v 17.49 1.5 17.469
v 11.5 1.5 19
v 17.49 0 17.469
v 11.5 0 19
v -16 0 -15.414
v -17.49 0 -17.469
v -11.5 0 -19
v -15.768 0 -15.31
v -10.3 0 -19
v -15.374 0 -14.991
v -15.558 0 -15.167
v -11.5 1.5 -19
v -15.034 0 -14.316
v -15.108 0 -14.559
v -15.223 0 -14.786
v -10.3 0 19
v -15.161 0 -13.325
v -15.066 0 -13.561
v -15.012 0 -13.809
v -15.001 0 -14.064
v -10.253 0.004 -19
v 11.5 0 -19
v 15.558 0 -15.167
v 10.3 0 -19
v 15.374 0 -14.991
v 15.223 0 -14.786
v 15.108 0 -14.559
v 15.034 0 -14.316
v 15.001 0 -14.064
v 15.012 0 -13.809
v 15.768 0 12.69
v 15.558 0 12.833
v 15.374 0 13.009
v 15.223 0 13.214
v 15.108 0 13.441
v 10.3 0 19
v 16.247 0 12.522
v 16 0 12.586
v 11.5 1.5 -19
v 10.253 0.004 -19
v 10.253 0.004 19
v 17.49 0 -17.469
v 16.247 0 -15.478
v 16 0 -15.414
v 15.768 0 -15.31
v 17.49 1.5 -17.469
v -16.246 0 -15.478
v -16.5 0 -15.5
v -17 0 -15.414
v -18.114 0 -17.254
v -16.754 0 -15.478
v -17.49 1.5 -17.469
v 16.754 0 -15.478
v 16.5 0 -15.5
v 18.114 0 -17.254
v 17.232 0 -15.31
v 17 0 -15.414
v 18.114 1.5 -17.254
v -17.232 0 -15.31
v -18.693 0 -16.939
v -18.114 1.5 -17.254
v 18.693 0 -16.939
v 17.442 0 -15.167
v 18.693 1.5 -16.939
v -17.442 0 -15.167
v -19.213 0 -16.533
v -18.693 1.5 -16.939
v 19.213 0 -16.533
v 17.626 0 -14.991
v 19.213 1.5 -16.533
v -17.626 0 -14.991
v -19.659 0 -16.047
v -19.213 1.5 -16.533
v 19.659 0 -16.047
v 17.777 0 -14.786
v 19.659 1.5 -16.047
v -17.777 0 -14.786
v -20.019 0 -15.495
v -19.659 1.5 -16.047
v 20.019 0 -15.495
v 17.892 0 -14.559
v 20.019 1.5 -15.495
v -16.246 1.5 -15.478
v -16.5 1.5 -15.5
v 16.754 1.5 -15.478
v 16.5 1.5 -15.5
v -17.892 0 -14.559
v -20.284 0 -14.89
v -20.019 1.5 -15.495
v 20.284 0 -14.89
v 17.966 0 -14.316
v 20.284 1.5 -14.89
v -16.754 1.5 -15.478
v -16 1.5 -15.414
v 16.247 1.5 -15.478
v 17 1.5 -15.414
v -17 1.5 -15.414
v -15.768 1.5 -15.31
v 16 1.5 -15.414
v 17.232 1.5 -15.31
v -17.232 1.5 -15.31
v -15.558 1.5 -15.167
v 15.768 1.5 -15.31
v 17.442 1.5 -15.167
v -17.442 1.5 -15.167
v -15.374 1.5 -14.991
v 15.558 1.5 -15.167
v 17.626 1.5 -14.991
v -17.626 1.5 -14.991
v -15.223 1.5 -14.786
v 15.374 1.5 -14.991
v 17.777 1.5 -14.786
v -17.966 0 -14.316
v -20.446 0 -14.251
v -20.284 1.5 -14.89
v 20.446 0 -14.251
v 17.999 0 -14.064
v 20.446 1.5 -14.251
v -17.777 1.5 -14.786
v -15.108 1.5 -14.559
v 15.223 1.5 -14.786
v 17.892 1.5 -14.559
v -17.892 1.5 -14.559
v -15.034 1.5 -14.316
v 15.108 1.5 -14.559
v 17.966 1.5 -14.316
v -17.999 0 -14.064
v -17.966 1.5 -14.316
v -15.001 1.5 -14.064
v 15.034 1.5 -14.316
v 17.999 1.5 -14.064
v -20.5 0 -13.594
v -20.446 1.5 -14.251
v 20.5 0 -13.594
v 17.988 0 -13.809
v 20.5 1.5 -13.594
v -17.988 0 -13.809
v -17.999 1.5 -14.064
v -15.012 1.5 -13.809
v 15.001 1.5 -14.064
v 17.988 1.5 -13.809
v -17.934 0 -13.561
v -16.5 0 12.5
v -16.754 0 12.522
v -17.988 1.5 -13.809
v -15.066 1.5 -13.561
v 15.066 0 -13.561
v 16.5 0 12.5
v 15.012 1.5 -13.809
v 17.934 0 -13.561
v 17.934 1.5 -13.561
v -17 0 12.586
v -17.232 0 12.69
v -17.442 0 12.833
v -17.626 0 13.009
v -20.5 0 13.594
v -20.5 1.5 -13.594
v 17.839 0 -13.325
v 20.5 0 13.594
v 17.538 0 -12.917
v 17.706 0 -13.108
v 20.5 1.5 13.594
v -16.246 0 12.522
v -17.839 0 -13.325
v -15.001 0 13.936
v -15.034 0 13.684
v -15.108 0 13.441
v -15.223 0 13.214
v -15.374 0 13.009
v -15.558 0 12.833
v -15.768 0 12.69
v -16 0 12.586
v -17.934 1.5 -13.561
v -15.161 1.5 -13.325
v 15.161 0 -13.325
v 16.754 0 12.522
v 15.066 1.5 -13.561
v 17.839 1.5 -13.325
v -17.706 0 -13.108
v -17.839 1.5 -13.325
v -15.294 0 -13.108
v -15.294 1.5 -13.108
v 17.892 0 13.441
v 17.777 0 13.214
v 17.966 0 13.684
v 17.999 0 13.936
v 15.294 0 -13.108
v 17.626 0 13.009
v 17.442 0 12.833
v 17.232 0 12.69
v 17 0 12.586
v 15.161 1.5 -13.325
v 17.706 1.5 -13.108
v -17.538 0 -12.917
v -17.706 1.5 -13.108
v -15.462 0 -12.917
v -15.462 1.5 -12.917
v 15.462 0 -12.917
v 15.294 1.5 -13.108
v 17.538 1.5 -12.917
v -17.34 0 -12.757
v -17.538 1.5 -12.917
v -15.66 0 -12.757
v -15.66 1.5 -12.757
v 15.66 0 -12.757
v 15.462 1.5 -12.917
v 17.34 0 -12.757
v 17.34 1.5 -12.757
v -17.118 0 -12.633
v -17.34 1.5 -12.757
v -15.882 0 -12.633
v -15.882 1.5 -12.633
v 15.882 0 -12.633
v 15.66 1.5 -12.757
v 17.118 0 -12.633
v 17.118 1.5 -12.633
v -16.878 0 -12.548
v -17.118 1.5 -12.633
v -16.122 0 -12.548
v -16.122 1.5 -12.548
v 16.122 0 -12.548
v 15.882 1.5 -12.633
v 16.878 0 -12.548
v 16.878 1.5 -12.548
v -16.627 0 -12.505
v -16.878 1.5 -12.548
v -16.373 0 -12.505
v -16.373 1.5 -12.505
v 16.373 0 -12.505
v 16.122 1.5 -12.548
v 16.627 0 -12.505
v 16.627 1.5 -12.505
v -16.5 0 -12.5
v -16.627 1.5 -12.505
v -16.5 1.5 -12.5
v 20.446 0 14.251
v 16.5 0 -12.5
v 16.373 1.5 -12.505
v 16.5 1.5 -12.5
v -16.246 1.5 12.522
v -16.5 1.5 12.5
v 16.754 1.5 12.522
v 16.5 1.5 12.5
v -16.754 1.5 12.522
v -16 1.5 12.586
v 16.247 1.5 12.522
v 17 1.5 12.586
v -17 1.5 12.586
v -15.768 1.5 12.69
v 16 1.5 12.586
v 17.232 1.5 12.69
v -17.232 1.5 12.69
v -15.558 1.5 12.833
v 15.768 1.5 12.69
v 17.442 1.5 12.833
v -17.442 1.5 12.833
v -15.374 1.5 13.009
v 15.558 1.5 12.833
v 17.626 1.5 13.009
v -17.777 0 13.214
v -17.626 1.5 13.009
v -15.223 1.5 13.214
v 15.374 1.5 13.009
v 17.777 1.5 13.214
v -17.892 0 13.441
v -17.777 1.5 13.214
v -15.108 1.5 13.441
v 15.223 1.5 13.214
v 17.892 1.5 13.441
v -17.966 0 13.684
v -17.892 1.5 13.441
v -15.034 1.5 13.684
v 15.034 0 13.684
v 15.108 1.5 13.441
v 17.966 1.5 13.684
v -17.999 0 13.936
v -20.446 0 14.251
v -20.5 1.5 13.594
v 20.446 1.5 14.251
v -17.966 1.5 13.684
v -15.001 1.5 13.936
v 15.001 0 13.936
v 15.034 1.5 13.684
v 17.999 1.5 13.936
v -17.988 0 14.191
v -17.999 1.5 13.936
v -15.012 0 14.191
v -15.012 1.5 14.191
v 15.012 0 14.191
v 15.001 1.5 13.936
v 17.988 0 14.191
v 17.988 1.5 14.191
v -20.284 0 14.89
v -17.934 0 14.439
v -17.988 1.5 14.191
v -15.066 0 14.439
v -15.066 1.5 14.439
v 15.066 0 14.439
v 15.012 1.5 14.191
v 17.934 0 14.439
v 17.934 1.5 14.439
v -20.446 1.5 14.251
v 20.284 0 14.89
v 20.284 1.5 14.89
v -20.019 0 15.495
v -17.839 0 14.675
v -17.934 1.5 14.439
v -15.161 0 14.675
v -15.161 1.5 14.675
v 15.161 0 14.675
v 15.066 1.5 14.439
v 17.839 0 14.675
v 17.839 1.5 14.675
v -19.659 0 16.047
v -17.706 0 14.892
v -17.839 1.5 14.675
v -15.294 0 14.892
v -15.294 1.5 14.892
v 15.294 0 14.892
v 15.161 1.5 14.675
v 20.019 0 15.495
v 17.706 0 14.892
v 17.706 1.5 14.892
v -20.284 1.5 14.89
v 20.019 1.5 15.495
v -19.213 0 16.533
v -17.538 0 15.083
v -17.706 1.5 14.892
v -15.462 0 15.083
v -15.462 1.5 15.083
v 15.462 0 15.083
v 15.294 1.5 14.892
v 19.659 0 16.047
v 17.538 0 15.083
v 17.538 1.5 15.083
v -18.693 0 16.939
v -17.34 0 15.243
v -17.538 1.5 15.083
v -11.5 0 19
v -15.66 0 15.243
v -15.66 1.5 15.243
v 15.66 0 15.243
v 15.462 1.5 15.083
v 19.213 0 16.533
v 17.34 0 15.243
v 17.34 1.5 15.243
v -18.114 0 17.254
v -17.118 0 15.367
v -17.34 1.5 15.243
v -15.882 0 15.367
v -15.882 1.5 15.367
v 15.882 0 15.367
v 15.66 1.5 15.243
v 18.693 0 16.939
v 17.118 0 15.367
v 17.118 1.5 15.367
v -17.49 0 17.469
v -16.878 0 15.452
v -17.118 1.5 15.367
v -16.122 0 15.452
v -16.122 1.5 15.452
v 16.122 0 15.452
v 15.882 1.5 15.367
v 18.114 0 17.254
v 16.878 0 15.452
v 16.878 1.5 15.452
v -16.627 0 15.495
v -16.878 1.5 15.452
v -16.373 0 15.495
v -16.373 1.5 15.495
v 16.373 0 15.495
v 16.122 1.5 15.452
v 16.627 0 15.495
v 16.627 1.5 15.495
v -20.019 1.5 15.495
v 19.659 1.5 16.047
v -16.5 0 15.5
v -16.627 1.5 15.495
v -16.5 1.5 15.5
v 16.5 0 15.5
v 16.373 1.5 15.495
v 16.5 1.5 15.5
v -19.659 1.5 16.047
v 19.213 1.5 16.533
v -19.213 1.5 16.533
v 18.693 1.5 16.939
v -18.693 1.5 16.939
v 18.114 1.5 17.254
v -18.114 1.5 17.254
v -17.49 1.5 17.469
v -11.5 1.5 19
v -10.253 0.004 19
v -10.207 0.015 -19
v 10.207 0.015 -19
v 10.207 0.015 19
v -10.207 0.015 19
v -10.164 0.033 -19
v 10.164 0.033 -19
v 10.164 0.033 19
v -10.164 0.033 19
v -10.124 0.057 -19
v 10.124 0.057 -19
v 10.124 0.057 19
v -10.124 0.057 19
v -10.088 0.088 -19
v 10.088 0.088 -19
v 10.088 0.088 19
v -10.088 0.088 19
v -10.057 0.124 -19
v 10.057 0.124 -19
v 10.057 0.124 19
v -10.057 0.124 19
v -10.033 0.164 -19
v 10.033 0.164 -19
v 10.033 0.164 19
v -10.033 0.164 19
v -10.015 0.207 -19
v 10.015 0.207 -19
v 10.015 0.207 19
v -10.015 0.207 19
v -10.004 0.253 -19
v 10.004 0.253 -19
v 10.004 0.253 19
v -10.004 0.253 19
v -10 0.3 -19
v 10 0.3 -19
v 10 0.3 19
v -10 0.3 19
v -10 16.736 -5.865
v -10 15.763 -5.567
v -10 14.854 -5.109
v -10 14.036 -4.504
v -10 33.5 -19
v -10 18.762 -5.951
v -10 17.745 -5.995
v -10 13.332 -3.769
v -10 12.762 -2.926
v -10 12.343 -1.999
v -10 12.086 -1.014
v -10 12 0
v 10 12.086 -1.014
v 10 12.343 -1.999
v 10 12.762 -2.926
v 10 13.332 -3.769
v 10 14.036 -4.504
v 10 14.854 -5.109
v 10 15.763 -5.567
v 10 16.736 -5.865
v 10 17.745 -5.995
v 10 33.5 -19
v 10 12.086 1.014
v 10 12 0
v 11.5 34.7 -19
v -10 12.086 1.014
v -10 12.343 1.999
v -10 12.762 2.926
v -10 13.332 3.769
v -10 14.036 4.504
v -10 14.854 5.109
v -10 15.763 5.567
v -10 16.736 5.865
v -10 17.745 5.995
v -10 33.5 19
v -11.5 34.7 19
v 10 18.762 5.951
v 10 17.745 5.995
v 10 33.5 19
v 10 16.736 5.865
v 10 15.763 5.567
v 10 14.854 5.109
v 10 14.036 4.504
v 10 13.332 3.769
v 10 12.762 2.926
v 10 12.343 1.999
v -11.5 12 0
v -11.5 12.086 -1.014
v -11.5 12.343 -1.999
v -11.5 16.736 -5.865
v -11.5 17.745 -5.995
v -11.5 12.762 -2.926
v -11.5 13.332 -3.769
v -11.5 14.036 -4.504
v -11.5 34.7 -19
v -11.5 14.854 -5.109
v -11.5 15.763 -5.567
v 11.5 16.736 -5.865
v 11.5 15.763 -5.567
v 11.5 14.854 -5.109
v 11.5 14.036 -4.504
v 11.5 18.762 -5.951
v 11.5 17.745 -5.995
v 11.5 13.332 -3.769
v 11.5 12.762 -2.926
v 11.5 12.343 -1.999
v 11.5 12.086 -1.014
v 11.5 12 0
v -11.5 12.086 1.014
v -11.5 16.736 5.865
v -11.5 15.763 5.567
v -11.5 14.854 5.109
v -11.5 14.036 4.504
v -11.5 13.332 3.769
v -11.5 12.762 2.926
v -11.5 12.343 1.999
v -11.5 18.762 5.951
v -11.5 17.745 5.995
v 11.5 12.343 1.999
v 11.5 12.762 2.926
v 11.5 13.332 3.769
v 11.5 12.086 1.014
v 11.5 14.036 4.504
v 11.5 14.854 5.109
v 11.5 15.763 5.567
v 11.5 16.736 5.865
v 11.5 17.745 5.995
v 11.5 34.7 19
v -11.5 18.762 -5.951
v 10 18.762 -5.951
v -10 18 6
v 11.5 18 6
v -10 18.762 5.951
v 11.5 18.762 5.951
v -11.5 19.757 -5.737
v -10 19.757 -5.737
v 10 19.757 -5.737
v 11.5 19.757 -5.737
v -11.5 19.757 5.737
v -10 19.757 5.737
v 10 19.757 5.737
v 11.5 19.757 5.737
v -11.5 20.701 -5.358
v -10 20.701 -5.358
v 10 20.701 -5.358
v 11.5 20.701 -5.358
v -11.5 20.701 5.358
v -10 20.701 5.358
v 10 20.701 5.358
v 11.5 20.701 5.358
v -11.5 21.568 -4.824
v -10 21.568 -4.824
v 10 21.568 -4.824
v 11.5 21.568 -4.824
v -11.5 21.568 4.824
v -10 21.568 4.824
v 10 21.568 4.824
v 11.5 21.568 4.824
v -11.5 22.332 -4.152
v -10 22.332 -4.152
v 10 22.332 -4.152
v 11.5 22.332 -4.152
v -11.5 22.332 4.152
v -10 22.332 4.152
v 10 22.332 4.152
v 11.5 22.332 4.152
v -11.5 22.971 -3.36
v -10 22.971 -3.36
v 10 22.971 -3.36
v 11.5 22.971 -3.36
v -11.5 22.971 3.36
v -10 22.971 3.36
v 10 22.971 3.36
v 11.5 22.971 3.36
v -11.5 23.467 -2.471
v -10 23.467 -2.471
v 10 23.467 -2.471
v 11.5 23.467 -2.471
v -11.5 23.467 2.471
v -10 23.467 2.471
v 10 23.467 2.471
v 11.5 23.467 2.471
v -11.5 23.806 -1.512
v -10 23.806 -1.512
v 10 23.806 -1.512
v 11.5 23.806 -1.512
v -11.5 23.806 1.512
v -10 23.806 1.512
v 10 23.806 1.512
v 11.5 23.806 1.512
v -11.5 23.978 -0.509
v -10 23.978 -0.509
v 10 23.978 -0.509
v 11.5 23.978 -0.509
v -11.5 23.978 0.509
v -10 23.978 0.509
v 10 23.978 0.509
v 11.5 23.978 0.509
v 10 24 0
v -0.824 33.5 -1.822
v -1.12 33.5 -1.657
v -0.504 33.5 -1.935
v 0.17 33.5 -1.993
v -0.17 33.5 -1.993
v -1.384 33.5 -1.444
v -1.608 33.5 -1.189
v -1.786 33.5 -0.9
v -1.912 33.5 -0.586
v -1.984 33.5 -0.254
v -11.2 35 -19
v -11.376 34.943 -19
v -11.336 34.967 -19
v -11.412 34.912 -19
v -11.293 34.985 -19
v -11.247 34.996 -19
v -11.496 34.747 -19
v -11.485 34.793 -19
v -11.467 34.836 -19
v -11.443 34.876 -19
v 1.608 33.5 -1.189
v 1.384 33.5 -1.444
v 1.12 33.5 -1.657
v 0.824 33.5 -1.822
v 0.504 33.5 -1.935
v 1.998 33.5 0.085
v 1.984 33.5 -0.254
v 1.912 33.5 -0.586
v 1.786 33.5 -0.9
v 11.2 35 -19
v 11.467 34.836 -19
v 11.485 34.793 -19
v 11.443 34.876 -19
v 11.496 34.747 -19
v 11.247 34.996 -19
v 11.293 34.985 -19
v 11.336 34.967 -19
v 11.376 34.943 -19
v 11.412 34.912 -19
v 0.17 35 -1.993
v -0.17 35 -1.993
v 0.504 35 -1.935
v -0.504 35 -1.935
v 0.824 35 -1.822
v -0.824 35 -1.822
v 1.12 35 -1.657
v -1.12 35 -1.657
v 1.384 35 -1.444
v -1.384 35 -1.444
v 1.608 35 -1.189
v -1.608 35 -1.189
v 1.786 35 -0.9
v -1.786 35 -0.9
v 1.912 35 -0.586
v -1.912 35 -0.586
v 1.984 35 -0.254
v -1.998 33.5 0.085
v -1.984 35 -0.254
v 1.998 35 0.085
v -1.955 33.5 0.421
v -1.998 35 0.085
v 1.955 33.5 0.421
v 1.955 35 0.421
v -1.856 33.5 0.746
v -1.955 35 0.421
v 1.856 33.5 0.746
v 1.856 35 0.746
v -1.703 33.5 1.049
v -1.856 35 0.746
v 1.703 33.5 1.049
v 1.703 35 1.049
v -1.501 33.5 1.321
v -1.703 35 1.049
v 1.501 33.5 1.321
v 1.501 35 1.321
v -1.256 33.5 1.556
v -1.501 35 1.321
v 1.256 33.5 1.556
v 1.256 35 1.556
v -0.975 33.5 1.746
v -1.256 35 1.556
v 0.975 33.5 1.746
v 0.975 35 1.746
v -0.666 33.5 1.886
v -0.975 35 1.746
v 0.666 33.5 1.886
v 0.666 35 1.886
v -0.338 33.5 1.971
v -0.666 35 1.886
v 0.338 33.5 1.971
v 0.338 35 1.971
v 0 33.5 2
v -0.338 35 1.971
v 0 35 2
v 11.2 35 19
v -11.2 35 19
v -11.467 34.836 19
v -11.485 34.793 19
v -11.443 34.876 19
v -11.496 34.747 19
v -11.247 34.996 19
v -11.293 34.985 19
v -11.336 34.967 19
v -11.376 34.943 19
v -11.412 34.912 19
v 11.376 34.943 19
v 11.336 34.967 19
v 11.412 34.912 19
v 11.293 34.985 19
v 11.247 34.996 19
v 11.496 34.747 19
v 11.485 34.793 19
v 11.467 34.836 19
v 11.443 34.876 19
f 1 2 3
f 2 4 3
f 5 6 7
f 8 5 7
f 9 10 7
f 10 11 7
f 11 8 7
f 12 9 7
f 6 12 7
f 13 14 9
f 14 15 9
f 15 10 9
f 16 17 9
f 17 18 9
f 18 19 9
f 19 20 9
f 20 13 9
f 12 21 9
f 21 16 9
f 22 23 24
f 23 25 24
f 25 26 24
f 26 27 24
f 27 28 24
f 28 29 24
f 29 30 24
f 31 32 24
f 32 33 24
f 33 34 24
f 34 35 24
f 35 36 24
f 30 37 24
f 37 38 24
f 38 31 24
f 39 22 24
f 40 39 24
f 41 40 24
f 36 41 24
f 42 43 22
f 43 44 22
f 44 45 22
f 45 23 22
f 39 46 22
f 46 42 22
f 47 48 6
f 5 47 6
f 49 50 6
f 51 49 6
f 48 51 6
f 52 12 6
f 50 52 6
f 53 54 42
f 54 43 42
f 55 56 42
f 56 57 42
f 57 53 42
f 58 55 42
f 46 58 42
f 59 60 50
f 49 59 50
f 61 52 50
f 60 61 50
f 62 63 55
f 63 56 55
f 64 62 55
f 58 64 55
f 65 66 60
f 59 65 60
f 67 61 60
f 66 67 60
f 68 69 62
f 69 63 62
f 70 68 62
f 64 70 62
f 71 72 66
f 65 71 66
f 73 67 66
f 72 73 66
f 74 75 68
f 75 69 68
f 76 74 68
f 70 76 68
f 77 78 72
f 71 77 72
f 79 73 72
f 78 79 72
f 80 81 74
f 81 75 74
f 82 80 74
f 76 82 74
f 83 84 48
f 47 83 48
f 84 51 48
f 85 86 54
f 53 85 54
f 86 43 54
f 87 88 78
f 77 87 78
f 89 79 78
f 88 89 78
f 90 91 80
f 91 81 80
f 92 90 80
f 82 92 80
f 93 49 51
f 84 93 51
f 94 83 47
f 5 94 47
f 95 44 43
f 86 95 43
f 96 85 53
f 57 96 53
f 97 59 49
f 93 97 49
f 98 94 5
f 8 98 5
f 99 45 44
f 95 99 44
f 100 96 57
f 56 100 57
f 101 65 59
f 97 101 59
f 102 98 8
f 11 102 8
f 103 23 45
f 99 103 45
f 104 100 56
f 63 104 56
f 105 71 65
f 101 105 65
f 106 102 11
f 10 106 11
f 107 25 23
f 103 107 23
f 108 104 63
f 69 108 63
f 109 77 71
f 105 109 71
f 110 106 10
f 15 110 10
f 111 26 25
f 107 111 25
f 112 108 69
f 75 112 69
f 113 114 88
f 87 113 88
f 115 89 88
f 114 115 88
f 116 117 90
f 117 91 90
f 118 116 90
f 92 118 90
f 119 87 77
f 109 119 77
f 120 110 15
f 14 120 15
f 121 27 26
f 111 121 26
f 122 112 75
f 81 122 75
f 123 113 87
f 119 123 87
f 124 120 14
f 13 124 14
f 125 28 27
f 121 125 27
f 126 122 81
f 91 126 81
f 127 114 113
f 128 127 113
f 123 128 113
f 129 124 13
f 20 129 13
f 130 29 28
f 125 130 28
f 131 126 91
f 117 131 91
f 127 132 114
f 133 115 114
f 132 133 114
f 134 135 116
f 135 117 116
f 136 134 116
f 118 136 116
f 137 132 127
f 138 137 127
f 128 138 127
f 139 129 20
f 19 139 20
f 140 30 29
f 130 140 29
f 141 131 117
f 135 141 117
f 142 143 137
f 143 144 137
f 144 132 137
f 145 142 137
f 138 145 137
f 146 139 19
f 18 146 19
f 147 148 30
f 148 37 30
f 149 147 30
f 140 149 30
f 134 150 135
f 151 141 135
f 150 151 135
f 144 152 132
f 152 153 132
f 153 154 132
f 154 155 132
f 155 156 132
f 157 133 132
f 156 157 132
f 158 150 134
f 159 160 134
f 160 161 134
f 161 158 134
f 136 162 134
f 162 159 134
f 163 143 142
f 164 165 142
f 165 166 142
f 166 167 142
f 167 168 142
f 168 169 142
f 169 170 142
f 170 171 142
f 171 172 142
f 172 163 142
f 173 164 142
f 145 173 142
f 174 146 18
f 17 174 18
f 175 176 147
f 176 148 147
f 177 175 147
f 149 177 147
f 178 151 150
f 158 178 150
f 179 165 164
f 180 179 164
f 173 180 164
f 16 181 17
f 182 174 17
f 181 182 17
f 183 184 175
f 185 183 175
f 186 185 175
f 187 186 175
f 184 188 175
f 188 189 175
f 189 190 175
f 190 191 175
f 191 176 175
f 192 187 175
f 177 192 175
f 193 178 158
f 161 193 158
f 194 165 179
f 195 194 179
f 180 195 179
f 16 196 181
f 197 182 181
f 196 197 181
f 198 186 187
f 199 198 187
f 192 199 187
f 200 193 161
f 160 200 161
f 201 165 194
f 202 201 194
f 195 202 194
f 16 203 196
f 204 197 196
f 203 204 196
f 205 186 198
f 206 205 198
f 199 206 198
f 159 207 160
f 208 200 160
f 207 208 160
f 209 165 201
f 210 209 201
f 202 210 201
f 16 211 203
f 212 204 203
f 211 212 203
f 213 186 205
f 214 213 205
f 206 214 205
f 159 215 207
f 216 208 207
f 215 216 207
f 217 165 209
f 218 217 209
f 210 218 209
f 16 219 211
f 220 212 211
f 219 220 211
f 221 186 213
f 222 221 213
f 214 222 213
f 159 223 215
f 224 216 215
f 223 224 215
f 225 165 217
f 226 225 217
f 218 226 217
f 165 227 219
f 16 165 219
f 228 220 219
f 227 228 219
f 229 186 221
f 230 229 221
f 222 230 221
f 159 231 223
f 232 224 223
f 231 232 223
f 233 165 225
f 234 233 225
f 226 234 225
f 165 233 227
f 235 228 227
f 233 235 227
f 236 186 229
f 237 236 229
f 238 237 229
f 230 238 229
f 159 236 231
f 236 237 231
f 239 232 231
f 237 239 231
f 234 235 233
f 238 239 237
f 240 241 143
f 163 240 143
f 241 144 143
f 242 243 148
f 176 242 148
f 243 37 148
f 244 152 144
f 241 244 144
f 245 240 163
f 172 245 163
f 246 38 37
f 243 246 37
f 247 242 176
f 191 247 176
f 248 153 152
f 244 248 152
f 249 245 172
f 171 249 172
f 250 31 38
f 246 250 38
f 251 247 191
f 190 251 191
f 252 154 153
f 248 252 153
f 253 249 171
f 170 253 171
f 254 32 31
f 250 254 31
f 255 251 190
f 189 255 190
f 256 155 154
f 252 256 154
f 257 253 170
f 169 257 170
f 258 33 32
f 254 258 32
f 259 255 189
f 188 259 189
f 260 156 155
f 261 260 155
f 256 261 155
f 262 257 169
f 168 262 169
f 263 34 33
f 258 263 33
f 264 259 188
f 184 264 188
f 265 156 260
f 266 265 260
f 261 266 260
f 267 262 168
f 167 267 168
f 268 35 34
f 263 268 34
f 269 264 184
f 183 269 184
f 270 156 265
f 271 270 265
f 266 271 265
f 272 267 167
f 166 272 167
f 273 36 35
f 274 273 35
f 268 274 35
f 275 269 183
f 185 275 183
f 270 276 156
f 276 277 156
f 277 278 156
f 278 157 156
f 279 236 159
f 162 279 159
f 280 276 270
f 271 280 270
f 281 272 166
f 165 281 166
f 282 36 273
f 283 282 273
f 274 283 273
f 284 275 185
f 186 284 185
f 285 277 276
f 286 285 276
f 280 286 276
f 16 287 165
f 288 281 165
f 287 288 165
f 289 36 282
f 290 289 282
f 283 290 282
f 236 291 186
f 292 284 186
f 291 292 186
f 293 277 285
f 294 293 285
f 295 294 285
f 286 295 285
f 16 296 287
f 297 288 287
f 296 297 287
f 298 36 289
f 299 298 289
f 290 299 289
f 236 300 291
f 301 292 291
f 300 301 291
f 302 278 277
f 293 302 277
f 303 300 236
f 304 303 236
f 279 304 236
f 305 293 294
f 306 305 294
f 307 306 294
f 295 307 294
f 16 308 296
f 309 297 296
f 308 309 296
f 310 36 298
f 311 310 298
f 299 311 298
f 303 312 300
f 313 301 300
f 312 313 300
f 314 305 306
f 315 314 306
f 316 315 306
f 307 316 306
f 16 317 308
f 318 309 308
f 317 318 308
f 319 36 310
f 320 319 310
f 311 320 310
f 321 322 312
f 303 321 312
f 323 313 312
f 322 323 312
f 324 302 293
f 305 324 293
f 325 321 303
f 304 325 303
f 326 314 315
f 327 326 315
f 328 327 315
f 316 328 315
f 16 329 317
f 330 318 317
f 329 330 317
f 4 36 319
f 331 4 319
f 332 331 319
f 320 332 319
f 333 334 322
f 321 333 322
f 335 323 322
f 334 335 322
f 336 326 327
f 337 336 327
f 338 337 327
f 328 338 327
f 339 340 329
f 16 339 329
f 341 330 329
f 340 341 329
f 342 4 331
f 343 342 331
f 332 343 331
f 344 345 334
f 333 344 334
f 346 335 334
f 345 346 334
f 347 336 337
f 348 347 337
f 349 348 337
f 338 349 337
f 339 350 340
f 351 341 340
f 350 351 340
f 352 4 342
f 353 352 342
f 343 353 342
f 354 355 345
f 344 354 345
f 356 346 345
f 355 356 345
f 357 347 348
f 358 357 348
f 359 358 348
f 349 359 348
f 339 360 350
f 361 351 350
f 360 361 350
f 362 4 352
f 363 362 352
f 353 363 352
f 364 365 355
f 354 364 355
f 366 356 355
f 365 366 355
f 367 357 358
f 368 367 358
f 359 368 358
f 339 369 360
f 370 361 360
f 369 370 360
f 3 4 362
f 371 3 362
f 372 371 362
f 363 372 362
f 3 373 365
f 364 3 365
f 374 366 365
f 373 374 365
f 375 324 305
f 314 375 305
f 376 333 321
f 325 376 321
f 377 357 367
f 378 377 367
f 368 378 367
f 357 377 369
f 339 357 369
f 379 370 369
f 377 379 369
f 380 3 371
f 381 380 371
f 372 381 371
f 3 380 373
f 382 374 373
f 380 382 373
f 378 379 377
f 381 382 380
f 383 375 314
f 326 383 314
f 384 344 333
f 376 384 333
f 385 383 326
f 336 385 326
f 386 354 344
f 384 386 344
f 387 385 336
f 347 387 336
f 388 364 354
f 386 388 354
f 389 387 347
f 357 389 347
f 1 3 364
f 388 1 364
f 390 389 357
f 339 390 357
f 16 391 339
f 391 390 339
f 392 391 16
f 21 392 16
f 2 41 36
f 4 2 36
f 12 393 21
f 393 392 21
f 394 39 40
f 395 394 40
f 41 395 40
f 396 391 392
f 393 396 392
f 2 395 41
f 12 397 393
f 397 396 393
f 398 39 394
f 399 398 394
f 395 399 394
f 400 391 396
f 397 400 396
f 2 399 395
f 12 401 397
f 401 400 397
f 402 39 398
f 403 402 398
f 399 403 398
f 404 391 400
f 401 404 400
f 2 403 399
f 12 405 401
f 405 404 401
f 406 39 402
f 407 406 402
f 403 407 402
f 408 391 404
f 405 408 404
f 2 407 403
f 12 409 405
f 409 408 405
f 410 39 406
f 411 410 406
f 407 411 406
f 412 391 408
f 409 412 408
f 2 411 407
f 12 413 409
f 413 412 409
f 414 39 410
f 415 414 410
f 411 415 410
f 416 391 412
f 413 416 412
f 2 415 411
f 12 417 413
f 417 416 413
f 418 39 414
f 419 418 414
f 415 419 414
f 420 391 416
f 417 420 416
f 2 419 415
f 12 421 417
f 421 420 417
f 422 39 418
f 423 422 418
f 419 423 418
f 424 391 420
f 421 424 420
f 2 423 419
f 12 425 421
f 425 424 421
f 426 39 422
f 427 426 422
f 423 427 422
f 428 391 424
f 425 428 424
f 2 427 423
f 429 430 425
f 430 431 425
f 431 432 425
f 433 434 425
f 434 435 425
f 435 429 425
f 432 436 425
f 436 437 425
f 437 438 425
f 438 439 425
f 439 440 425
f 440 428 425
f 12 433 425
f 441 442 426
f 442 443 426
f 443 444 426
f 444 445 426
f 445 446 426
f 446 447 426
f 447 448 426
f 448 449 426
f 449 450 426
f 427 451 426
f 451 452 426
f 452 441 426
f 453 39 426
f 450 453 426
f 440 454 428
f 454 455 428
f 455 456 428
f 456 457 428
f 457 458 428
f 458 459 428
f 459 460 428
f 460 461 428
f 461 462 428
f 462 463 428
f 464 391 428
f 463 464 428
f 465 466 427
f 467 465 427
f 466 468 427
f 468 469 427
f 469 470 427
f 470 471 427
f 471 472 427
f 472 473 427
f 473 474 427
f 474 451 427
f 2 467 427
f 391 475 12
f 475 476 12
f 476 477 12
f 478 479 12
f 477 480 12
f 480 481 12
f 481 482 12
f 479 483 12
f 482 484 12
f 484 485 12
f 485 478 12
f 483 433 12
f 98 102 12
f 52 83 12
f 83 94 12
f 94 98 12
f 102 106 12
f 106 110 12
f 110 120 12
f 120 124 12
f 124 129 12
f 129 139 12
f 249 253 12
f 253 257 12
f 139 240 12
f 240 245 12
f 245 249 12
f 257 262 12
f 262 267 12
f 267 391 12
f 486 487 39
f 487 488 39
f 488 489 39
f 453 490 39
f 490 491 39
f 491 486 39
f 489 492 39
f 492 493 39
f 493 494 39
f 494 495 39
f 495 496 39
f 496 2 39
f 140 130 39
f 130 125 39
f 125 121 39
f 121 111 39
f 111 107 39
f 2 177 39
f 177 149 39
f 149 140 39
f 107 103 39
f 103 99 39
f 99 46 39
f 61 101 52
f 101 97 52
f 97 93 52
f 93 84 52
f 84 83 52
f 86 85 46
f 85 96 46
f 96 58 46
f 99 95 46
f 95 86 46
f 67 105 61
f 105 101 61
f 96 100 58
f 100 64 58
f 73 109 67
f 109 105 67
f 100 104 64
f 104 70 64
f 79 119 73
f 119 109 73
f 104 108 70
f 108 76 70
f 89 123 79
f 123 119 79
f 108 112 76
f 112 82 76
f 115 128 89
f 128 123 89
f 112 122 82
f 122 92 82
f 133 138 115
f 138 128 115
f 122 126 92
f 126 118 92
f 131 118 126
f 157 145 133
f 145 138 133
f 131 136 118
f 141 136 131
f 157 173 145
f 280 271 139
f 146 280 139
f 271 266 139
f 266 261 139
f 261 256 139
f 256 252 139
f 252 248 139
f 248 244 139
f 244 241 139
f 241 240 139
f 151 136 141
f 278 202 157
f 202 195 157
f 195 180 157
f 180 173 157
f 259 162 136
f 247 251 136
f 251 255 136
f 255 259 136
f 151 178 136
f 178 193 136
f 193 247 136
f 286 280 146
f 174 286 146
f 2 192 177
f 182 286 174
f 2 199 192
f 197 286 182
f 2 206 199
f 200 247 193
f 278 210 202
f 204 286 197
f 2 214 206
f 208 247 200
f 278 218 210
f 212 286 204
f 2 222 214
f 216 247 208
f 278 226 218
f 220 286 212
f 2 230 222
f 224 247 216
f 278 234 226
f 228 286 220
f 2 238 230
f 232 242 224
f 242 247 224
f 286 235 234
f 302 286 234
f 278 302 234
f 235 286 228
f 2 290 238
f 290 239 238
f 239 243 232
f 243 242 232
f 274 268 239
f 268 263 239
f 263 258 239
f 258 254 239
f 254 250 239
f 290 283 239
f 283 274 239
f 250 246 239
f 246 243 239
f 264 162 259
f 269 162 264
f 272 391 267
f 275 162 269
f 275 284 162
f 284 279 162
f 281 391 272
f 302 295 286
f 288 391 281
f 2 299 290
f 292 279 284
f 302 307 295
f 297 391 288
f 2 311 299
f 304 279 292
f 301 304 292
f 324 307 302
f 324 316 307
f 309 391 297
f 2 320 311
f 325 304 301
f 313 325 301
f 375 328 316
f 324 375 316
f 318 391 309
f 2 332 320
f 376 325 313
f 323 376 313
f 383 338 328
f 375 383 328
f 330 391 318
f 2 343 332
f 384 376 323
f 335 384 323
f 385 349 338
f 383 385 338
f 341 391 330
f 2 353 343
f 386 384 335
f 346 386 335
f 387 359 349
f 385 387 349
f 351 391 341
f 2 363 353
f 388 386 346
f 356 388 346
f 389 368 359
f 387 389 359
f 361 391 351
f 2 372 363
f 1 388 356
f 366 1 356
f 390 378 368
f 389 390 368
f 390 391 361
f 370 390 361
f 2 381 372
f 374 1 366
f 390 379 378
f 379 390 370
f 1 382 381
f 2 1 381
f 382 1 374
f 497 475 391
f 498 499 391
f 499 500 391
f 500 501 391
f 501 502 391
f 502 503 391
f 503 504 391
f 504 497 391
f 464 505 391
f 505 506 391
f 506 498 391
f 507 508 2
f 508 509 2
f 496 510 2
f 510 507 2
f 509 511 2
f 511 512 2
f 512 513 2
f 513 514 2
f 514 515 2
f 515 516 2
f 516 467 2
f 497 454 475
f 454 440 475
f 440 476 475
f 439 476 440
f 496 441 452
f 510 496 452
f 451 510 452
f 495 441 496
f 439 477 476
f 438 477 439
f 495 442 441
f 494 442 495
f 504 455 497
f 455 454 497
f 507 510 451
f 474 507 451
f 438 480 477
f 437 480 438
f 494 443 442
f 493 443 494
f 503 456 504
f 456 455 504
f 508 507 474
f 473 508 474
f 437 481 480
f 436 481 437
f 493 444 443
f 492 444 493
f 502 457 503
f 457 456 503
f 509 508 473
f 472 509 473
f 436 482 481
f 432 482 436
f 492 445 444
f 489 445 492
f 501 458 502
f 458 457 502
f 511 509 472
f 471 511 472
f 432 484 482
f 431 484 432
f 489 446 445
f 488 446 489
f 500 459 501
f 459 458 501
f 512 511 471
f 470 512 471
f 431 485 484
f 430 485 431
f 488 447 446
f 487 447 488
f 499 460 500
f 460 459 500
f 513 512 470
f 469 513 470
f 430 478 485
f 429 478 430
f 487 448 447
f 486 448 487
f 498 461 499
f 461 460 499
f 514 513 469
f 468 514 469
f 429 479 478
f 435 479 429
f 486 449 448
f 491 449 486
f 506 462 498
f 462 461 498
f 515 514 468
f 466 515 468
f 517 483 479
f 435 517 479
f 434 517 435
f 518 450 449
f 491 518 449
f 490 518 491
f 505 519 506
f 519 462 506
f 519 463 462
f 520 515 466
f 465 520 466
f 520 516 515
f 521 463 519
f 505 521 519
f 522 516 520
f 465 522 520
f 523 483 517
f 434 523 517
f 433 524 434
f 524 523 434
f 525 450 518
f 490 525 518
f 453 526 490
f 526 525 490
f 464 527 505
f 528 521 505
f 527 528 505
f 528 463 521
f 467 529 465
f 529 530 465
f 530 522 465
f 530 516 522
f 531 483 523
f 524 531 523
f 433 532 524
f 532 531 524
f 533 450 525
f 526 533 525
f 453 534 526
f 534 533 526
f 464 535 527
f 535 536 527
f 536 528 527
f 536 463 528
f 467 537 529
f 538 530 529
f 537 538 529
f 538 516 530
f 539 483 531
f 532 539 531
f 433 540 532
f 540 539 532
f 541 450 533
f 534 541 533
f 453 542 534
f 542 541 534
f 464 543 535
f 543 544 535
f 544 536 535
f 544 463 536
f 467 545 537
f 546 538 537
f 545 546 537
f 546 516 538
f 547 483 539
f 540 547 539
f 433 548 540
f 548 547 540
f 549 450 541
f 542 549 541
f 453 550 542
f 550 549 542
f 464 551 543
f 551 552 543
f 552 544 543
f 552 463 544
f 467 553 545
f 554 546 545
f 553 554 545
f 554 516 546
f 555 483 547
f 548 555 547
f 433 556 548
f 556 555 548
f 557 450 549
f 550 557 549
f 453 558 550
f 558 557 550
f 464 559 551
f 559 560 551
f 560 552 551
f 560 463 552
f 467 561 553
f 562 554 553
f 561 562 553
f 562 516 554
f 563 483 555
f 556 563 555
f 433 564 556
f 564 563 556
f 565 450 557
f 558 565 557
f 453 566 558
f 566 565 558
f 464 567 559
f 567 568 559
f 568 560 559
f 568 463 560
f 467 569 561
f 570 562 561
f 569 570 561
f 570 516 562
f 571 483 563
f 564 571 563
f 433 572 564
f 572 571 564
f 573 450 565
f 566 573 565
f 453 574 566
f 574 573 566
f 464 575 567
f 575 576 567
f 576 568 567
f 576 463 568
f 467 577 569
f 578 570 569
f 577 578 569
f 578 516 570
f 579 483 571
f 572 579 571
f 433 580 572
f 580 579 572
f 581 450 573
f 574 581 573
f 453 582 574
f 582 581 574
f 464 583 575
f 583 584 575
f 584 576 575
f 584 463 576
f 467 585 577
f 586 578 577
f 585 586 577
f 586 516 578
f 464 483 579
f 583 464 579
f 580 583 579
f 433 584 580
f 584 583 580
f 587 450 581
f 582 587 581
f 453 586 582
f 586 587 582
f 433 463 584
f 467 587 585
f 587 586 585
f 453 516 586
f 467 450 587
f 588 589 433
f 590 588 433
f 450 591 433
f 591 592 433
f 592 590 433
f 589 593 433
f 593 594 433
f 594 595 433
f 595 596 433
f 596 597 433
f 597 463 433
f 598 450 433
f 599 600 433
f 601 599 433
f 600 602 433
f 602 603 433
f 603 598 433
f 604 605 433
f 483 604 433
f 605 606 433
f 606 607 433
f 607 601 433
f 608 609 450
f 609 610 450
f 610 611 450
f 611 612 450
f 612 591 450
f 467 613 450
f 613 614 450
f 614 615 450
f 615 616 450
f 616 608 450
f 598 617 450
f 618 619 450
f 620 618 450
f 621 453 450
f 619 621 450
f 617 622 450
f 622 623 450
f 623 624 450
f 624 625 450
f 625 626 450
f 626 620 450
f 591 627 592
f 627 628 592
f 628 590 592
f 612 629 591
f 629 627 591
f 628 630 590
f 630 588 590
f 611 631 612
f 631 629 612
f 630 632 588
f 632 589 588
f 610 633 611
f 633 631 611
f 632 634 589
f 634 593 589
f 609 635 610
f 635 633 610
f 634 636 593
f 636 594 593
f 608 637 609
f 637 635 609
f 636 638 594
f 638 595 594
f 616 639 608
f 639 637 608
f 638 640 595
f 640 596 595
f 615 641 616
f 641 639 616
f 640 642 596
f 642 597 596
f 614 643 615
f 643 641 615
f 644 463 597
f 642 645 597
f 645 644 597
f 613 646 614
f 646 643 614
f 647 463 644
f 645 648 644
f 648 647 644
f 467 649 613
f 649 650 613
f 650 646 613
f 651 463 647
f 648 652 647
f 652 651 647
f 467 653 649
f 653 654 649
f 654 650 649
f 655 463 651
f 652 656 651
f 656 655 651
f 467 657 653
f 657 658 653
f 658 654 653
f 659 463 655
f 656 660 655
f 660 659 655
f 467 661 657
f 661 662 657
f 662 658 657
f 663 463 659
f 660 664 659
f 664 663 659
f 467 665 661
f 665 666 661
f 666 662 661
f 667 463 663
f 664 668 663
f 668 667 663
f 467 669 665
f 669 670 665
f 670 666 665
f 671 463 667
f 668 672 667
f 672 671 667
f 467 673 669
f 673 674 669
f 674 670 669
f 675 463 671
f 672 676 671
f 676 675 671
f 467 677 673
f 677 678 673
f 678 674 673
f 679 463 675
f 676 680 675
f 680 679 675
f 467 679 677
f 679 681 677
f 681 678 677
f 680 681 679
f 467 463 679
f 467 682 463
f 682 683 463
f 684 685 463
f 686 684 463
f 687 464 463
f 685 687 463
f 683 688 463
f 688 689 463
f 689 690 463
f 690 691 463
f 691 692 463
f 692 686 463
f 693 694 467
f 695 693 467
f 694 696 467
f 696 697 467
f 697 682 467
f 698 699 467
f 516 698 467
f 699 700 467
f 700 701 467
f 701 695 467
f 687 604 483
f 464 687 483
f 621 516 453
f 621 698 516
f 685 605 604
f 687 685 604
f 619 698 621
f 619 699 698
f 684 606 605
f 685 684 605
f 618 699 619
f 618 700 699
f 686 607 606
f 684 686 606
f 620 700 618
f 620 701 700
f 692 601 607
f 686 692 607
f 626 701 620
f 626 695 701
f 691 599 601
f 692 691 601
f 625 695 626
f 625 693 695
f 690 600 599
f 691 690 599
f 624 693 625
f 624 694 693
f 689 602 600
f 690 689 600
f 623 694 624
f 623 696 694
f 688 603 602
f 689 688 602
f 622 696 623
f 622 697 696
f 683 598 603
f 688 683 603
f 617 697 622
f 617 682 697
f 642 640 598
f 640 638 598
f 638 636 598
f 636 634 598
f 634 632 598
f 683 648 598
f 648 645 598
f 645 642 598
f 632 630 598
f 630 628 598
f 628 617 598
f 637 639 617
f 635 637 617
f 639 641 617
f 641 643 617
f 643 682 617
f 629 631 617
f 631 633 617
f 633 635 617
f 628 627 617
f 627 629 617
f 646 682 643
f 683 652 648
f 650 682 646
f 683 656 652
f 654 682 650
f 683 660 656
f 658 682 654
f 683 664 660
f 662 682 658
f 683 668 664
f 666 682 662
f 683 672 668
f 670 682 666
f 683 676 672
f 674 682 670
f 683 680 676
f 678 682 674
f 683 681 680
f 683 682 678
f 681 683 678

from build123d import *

# Parameters (mm, degrees)
BOSS_EXTRUDE1_DEPTH = 19
SKETCH4_R           = 2
CUT_EXTRUDE1_DEPTH  = 1.5
FILLET1_R           = 0.3
FILLET2_R           = 0.3
FILLET3_R           = 0.3
SKETCH3_R           = 1.5
BOSS_EXTRUDE2_DEPTH = 1.5
SKETCH7_R           = 6
CUT_EXTRUDE2_DEPTH  = 52.088159098


with BuildPart() as part:
    # Sketch1 → Boss-Extrude1 (new, symmetric)
    with BuildSketch(Plane.XY):
        Polygon((-10, 0), (-10, 33.5), (10, 33.5), (10, 0), (11.5, 0), (11.5, 35), (-11.5, 35), (-11.5, 0), align=None)
    extrude(amount=BOSS_EXTRUDE1_DEPTH, both=True)

    # Sketch4 → Cut-Extrude1 (cut)
    with BuildSketch(Plane(origin=(0, 35, 0), x_dir=(1, 0, 0), z_dir=(0, 1, 0))):
        with Locations(Location((0, 0, 0), (0, 0, 270))):
            Circle(SKETCH4_R)
    extrude(amount=-CUT_EXTRUDE1_DEPTH, mode=Mode.SUBTRACT)

    # Fillet1
    fillet1_edges = [part.edges().sort_by_distance(p)[0] for p in [
        (-10, 0, 0),
    ]]
    fillet(fillet1_edges, radius=FILLET1_R)

    # Fillet2
    fillet2_edges = [part.edges().sort_by_distance(p)[0] for p in [
        (10, 0, 0),
    ]]
    fillet(fillet2_edges, radius=FILLET2_R)

    # Fillet3
    fillet3_edges = [part.edges().sort_by_distance(p)[0] for p in [
        (-11.5, 35, 0),
        (11.5, 35, 0),
    ]]
    fillet(fillet3_edges, radius=FILLET3_R)

    # Sketch3 → Boss-Extrude2 (add)
    # profile 1 of 2: a face of its own
    with BuildSketch(Plane(origin=(0, 0, 0), x_dir=(1, 0, 0), z_dir=(0, 1, 0))):
        with BuildLine():
            ThreePointArc((-17.49039307, -17.469121771), (-19.659238221, -16.047079248), (-20.5, -13.593670627))
            Line((-20.5, -13.593670627), (-20.5, 13.593670627))
            ThreePointArc((-20.5, 13.593670627), (-19.659238221, 16.047079248), (-17.49039307, 17.469121771))
            Line((-17.49039307, 17.469121771), (-11.5, 19))
            Line((-11.5, 19), (-11.5, -19))
            Line((-11.5, -19), (-17.49039307, -17.469121771))
        make_face()
        with Locations(Location((-16.5, -14, 0), (0, 0, 270))):
            Circle(SKETCH3_R, mode=Mode.SUBTRACT)
        with Locations(Location((-16.5, 14, 0), (0, 0, 270))):
            Circle(SKETCH3_R, mode=Mode.SUBTRACT)
    # profile 2 of 2: a face of its own
    with BuildSketch(Plane(origin=(0, 0, 0), x_dir=(1, 0, 0), z_dir=(0, 1, 0))):
        with BuildLine():
            Line((17.49039307, -17.469121771), (11.5, -19))
            Line((11.5, -19), (11.5, 19))
            Line((11.5, 19), (17.49039307, 17.469121771))
            ThreePointArc((17.49039307, 17.469121771), (19.659238221, 16.047079248), (20.5, 13.593670627))
            Line((20.5, 13.593670627), (20.5, -13.593670627))
            ThreePointArc((20.5, -13.593670627), (19.659238221, -16.047079248), (17.49039307, -17.469121771))
        make_face()
        with Locations(Location((16.5, -14, 0), (0, 0, 270))):
            Circle(SKETCH3_R, mode=Mode.SUBTRACT)
        with Locations(Location((16.5, 14, 0), (0, 0, 270))):
            Circle(SKETCH3_R, mode=Mode.SUBTRACT)
    extrude(amount=BOSS_EXTRUDE2_DEPTH)

    # Sketch7 → Cut-Extrude2 (cut, through all)
    with BuildSketch(Plane.ZY.offset(11.5)):
        with Locations(Location((0, 18, 0), (0, 0, 270))):
            Circle(SKETCH7_R)
    extrude(amount=-CUT_EXTRUDE2_DEPTH, mode=Mode.SUBTRACT)


solid = part.part
